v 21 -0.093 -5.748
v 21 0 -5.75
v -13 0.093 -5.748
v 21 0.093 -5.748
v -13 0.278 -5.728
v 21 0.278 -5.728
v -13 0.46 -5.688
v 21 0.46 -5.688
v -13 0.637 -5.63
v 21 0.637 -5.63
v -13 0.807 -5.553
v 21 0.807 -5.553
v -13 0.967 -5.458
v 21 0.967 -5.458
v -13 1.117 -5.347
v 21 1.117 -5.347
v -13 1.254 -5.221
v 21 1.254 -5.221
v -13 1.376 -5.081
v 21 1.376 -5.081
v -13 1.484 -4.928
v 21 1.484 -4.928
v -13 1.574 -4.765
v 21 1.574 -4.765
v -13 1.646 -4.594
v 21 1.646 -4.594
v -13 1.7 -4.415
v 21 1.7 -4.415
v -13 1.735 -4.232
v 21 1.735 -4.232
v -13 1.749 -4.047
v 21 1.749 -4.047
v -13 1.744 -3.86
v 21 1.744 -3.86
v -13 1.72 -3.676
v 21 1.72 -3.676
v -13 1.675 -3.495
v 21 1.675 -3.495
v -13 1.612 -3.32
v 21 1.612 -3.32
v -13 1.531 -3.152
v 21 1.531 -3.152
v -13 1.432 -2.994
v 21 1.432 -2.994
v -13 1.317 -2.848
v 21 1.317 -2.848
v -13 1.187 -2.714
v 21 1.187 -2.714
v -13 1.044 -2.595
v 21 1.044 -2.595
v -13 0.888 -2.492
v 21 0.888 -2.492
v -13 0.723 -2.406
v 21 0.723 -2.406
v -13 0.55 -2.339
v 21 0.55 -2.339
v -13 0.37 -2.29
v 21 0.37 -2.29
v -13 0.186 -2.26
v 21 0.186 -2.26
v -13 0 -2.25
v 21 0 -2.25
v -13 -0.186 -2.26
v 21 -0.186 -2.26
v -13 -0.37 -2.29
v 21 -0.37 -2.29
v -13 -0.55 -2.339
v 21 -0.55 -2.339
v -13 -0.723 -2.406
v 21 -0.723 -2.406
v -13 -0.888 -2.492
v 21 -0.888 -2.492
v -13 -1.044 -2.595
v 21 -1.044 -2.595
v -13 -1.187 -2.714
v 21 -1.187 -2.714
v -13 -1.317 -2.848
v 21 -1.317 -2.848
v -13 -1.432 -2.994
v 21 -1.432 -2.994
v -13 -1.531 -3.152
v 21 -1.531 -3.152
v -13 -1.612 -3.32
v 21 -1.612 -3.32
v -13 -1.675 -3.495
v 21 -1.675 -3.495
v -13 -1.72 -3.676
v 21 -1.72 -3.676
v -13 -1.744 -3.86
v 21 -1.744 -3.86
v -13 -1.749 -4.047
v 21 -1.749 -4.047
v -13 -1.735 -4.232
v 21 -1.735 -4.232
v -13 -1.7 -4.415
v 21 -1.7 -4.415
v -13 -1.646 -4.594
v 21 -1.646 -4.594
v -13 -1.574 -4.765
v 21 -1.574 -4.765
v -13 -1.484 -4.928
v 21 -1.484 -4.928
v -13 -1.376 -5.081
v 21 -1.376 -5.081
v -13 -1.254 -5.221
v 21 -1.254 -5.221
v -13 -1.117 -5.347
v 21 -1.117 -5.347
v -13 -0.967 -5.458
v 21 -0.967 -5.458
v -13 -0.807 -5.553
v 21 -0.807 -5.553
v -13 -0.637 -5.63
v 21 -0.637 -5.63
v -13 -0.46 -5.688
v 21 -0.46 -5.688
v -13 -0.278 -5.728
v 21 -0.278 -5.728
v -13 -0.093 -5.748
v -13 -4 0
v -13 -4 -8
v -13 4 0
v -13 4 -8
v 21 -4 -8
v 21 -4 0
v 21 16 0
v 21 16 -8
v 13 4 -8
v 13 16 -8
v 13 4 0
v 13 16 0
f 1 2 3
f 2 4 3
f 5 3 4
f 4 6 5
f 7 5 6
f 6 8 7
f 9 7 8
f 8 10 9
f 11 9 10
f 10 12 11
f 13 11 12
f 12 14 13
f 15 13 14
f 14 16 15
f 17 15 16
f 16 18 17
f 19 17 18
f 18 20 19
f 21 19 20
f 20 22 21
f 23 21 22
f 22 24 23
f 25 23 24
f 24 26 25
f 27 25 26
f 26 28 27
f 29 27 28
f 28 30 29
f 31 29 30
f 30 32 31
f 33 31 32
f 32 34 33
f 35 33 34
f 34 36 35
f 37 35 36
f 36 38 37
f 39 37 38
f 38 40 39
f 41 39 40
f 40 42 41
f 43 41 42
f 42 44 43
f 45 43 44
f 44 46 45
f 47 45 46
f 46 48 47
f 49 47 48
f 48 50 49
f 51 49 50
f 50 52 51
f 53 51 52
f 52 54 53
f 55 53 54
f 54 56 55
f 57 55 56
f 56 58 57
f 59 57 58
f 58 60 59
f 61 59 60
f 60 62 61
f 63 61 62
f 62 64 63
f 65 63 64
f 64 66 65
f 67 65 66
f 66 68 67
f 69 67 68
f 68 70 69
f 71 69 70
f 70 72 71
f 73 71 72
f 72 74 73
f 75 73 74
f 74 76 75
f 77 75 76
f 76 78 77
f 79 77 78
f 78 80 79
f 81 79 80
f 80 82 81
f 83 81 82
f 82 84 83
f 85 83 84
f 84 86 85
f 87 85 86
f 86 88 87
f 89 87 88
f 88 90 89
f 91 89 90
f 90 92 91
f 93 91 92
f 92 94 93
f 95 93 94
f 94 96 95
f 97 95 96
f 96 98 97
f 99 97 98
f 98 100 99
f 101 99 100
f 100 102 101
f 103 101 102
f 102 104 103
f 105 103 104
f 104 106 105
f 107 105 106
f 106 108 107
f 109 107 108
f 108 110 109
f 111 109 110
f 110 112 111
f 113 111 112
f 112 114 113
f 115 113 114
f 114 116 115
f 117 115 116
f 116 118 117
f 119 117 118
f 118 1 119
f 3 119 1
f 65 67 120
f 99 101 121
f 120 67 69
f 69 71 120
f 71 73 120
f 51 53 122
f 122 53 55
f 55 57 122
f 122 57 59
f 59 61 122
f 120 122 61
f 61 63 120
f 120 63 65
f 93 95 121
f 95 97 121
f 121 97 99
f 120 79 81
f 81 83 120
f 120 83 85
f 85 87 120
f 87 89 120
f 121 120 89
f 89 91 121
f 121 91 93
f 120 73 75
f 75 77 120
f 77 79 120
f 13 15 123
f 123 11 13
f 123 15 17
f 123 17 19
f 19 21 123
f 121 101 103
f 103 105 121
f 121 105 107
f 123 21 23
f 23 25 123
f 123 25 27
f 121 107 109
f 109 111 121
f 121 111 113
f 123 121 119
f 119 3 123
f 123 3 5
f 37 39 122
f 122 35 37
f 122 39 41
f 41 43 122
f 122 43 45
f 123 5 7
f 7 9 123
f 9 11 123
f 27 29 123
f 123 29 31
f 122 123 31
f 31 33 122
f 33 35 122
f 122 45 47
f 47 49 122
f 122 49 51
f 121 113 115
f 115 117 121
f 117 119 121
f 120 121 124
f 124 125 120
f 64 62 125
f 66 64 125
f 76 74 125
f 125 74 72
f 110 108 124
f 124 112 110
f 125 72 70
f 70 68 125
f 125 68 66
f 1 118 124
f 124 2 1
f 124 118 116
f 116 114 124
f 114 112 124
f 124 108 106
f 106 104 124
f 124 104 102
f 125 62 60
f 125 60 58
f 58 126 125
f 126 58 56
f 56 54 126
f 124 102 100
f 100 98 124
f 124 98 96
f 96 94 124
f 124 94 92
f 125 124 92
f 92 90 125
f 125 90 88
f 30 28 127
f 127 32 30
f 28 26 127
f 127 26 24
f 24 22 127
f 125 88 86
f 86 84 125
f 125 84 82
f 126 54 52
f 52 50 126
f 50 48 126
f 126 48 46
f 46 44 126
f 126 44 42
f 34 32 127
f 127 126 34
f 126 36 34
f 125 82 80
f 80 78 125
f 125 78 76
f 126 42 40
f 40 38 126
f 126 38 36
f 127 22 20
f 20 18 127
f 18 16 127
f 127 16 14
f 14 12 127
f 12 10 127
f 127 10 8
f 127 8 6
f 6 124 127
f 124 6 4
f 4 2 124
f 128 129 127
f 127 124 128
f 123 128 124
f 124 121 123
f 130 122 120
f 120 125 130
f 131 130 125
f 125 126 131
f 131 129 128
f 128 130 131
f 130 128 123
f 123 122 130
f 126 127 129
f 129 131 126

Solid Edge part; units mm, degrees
sketch "Sketch1" plane through (0, 0, 0) normal (0, 0, 1) x (1, 0, 0)
  line L0 (13, 4) -> (-13, 4)
  line L1 (-13, 4) -> (-13, -4)
  line L2 (-13, -4) -> (13, -4)
  line L3 (13, -4) -> (21, -4)
  line L4 (21, -4) -> (21, 16)
  line L5 (21, 16) -> (13, 16)
  line L6 (13, 16) -> (13, 4)
extrude "Protrusion1" add sketch "Sketch1" against normal blind 8
sketch "Sketch2" plane through (-13, 0, -4) normal (-1, 0, 0) x (0, 0, 1)
  circle A0 centre (0, 0) radius 1.75
extrude "Extrusionsausschnitt_1" cut sketch "Sketch2" against normal blind 38.1
